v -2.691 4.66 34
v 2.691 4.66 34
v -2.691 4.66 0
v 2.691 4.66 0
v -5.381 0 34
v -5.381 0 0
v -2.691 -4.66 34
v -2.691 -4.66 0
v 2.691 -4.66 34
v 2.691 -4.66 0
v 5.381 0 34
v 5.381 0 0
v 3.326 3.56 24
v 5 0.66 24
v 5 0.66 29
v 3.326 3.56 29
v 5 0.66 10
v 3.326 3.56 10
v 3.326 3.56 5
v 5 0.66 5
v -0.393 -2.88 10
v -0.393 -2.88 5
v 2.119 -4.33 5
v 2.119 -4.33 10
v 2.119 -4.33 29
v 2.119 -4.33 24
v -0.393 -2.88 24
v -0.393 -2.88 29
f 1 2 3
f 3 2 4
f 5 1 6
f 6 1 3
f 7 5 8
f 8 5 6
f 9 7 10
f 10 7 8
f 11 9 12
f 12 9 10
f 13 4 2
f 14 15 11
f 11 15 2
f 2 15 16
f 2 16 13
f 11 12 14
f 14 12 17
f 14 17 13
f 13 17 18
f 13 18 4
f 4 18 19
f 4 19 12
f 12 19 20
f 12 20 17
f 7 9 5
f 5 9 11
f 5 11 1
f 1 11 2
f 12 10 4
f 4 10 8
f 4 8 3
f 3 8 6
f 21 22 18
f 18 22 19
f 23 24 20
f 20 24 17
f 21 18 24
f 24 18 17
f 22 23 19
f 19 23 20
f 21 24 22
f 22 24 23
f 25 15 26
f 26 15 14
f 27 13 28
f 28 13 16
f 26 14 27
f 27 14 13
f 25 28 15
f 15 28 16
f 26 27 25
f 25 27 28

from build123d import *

# Parameters (mm, degrees)
BOSS_EXTRU_1_DEPTH      = 34
ENL_V_MAT_EXTRU_1_DEPTH = 5


with BuildPart() as part:
    # Esquisse1 → Boss.-Extru.1 (new body)
    with BuildSketch(Plane.XY):
        Polygon((-2.690598923, 4.660254038), (-5.381197846, 0), (-2.690598923, -4.660254038), (2.690598923, -4.660254038), (5.381197846, 0), (2.690598923, 4.660254038), align=None)
    extrude(amount=BOSS_EXTRU_1_DEPTH)

    # Esquisse2 → Enlèv. mat.-Extru.1 (cut)
    with BuildSketch(Plane.XY.offset(5)):
        Polygon((3.657319172, 4.134662626), (-0.392671517, -2.880127019), (2.118802154, -4.330127019), (6.168792843, 2.684662626), align=None)
    enl_v_mat_extru_1 = extrude(amount=ENL_V_MAT_EXTRU_1_DEPTH, mode=Mode.SUBTRACT)

    # Symétrie1: Enlèv. mat.-Extru.1 across plane
    add(enl_v_mat_extru_1.mirror(Plane(origin=(0, 0, 17), x_dir=(1, 0, 0), z_dir=(0, 0, -1))), mode=Mode.SUBTRACT)


solid = part.part
